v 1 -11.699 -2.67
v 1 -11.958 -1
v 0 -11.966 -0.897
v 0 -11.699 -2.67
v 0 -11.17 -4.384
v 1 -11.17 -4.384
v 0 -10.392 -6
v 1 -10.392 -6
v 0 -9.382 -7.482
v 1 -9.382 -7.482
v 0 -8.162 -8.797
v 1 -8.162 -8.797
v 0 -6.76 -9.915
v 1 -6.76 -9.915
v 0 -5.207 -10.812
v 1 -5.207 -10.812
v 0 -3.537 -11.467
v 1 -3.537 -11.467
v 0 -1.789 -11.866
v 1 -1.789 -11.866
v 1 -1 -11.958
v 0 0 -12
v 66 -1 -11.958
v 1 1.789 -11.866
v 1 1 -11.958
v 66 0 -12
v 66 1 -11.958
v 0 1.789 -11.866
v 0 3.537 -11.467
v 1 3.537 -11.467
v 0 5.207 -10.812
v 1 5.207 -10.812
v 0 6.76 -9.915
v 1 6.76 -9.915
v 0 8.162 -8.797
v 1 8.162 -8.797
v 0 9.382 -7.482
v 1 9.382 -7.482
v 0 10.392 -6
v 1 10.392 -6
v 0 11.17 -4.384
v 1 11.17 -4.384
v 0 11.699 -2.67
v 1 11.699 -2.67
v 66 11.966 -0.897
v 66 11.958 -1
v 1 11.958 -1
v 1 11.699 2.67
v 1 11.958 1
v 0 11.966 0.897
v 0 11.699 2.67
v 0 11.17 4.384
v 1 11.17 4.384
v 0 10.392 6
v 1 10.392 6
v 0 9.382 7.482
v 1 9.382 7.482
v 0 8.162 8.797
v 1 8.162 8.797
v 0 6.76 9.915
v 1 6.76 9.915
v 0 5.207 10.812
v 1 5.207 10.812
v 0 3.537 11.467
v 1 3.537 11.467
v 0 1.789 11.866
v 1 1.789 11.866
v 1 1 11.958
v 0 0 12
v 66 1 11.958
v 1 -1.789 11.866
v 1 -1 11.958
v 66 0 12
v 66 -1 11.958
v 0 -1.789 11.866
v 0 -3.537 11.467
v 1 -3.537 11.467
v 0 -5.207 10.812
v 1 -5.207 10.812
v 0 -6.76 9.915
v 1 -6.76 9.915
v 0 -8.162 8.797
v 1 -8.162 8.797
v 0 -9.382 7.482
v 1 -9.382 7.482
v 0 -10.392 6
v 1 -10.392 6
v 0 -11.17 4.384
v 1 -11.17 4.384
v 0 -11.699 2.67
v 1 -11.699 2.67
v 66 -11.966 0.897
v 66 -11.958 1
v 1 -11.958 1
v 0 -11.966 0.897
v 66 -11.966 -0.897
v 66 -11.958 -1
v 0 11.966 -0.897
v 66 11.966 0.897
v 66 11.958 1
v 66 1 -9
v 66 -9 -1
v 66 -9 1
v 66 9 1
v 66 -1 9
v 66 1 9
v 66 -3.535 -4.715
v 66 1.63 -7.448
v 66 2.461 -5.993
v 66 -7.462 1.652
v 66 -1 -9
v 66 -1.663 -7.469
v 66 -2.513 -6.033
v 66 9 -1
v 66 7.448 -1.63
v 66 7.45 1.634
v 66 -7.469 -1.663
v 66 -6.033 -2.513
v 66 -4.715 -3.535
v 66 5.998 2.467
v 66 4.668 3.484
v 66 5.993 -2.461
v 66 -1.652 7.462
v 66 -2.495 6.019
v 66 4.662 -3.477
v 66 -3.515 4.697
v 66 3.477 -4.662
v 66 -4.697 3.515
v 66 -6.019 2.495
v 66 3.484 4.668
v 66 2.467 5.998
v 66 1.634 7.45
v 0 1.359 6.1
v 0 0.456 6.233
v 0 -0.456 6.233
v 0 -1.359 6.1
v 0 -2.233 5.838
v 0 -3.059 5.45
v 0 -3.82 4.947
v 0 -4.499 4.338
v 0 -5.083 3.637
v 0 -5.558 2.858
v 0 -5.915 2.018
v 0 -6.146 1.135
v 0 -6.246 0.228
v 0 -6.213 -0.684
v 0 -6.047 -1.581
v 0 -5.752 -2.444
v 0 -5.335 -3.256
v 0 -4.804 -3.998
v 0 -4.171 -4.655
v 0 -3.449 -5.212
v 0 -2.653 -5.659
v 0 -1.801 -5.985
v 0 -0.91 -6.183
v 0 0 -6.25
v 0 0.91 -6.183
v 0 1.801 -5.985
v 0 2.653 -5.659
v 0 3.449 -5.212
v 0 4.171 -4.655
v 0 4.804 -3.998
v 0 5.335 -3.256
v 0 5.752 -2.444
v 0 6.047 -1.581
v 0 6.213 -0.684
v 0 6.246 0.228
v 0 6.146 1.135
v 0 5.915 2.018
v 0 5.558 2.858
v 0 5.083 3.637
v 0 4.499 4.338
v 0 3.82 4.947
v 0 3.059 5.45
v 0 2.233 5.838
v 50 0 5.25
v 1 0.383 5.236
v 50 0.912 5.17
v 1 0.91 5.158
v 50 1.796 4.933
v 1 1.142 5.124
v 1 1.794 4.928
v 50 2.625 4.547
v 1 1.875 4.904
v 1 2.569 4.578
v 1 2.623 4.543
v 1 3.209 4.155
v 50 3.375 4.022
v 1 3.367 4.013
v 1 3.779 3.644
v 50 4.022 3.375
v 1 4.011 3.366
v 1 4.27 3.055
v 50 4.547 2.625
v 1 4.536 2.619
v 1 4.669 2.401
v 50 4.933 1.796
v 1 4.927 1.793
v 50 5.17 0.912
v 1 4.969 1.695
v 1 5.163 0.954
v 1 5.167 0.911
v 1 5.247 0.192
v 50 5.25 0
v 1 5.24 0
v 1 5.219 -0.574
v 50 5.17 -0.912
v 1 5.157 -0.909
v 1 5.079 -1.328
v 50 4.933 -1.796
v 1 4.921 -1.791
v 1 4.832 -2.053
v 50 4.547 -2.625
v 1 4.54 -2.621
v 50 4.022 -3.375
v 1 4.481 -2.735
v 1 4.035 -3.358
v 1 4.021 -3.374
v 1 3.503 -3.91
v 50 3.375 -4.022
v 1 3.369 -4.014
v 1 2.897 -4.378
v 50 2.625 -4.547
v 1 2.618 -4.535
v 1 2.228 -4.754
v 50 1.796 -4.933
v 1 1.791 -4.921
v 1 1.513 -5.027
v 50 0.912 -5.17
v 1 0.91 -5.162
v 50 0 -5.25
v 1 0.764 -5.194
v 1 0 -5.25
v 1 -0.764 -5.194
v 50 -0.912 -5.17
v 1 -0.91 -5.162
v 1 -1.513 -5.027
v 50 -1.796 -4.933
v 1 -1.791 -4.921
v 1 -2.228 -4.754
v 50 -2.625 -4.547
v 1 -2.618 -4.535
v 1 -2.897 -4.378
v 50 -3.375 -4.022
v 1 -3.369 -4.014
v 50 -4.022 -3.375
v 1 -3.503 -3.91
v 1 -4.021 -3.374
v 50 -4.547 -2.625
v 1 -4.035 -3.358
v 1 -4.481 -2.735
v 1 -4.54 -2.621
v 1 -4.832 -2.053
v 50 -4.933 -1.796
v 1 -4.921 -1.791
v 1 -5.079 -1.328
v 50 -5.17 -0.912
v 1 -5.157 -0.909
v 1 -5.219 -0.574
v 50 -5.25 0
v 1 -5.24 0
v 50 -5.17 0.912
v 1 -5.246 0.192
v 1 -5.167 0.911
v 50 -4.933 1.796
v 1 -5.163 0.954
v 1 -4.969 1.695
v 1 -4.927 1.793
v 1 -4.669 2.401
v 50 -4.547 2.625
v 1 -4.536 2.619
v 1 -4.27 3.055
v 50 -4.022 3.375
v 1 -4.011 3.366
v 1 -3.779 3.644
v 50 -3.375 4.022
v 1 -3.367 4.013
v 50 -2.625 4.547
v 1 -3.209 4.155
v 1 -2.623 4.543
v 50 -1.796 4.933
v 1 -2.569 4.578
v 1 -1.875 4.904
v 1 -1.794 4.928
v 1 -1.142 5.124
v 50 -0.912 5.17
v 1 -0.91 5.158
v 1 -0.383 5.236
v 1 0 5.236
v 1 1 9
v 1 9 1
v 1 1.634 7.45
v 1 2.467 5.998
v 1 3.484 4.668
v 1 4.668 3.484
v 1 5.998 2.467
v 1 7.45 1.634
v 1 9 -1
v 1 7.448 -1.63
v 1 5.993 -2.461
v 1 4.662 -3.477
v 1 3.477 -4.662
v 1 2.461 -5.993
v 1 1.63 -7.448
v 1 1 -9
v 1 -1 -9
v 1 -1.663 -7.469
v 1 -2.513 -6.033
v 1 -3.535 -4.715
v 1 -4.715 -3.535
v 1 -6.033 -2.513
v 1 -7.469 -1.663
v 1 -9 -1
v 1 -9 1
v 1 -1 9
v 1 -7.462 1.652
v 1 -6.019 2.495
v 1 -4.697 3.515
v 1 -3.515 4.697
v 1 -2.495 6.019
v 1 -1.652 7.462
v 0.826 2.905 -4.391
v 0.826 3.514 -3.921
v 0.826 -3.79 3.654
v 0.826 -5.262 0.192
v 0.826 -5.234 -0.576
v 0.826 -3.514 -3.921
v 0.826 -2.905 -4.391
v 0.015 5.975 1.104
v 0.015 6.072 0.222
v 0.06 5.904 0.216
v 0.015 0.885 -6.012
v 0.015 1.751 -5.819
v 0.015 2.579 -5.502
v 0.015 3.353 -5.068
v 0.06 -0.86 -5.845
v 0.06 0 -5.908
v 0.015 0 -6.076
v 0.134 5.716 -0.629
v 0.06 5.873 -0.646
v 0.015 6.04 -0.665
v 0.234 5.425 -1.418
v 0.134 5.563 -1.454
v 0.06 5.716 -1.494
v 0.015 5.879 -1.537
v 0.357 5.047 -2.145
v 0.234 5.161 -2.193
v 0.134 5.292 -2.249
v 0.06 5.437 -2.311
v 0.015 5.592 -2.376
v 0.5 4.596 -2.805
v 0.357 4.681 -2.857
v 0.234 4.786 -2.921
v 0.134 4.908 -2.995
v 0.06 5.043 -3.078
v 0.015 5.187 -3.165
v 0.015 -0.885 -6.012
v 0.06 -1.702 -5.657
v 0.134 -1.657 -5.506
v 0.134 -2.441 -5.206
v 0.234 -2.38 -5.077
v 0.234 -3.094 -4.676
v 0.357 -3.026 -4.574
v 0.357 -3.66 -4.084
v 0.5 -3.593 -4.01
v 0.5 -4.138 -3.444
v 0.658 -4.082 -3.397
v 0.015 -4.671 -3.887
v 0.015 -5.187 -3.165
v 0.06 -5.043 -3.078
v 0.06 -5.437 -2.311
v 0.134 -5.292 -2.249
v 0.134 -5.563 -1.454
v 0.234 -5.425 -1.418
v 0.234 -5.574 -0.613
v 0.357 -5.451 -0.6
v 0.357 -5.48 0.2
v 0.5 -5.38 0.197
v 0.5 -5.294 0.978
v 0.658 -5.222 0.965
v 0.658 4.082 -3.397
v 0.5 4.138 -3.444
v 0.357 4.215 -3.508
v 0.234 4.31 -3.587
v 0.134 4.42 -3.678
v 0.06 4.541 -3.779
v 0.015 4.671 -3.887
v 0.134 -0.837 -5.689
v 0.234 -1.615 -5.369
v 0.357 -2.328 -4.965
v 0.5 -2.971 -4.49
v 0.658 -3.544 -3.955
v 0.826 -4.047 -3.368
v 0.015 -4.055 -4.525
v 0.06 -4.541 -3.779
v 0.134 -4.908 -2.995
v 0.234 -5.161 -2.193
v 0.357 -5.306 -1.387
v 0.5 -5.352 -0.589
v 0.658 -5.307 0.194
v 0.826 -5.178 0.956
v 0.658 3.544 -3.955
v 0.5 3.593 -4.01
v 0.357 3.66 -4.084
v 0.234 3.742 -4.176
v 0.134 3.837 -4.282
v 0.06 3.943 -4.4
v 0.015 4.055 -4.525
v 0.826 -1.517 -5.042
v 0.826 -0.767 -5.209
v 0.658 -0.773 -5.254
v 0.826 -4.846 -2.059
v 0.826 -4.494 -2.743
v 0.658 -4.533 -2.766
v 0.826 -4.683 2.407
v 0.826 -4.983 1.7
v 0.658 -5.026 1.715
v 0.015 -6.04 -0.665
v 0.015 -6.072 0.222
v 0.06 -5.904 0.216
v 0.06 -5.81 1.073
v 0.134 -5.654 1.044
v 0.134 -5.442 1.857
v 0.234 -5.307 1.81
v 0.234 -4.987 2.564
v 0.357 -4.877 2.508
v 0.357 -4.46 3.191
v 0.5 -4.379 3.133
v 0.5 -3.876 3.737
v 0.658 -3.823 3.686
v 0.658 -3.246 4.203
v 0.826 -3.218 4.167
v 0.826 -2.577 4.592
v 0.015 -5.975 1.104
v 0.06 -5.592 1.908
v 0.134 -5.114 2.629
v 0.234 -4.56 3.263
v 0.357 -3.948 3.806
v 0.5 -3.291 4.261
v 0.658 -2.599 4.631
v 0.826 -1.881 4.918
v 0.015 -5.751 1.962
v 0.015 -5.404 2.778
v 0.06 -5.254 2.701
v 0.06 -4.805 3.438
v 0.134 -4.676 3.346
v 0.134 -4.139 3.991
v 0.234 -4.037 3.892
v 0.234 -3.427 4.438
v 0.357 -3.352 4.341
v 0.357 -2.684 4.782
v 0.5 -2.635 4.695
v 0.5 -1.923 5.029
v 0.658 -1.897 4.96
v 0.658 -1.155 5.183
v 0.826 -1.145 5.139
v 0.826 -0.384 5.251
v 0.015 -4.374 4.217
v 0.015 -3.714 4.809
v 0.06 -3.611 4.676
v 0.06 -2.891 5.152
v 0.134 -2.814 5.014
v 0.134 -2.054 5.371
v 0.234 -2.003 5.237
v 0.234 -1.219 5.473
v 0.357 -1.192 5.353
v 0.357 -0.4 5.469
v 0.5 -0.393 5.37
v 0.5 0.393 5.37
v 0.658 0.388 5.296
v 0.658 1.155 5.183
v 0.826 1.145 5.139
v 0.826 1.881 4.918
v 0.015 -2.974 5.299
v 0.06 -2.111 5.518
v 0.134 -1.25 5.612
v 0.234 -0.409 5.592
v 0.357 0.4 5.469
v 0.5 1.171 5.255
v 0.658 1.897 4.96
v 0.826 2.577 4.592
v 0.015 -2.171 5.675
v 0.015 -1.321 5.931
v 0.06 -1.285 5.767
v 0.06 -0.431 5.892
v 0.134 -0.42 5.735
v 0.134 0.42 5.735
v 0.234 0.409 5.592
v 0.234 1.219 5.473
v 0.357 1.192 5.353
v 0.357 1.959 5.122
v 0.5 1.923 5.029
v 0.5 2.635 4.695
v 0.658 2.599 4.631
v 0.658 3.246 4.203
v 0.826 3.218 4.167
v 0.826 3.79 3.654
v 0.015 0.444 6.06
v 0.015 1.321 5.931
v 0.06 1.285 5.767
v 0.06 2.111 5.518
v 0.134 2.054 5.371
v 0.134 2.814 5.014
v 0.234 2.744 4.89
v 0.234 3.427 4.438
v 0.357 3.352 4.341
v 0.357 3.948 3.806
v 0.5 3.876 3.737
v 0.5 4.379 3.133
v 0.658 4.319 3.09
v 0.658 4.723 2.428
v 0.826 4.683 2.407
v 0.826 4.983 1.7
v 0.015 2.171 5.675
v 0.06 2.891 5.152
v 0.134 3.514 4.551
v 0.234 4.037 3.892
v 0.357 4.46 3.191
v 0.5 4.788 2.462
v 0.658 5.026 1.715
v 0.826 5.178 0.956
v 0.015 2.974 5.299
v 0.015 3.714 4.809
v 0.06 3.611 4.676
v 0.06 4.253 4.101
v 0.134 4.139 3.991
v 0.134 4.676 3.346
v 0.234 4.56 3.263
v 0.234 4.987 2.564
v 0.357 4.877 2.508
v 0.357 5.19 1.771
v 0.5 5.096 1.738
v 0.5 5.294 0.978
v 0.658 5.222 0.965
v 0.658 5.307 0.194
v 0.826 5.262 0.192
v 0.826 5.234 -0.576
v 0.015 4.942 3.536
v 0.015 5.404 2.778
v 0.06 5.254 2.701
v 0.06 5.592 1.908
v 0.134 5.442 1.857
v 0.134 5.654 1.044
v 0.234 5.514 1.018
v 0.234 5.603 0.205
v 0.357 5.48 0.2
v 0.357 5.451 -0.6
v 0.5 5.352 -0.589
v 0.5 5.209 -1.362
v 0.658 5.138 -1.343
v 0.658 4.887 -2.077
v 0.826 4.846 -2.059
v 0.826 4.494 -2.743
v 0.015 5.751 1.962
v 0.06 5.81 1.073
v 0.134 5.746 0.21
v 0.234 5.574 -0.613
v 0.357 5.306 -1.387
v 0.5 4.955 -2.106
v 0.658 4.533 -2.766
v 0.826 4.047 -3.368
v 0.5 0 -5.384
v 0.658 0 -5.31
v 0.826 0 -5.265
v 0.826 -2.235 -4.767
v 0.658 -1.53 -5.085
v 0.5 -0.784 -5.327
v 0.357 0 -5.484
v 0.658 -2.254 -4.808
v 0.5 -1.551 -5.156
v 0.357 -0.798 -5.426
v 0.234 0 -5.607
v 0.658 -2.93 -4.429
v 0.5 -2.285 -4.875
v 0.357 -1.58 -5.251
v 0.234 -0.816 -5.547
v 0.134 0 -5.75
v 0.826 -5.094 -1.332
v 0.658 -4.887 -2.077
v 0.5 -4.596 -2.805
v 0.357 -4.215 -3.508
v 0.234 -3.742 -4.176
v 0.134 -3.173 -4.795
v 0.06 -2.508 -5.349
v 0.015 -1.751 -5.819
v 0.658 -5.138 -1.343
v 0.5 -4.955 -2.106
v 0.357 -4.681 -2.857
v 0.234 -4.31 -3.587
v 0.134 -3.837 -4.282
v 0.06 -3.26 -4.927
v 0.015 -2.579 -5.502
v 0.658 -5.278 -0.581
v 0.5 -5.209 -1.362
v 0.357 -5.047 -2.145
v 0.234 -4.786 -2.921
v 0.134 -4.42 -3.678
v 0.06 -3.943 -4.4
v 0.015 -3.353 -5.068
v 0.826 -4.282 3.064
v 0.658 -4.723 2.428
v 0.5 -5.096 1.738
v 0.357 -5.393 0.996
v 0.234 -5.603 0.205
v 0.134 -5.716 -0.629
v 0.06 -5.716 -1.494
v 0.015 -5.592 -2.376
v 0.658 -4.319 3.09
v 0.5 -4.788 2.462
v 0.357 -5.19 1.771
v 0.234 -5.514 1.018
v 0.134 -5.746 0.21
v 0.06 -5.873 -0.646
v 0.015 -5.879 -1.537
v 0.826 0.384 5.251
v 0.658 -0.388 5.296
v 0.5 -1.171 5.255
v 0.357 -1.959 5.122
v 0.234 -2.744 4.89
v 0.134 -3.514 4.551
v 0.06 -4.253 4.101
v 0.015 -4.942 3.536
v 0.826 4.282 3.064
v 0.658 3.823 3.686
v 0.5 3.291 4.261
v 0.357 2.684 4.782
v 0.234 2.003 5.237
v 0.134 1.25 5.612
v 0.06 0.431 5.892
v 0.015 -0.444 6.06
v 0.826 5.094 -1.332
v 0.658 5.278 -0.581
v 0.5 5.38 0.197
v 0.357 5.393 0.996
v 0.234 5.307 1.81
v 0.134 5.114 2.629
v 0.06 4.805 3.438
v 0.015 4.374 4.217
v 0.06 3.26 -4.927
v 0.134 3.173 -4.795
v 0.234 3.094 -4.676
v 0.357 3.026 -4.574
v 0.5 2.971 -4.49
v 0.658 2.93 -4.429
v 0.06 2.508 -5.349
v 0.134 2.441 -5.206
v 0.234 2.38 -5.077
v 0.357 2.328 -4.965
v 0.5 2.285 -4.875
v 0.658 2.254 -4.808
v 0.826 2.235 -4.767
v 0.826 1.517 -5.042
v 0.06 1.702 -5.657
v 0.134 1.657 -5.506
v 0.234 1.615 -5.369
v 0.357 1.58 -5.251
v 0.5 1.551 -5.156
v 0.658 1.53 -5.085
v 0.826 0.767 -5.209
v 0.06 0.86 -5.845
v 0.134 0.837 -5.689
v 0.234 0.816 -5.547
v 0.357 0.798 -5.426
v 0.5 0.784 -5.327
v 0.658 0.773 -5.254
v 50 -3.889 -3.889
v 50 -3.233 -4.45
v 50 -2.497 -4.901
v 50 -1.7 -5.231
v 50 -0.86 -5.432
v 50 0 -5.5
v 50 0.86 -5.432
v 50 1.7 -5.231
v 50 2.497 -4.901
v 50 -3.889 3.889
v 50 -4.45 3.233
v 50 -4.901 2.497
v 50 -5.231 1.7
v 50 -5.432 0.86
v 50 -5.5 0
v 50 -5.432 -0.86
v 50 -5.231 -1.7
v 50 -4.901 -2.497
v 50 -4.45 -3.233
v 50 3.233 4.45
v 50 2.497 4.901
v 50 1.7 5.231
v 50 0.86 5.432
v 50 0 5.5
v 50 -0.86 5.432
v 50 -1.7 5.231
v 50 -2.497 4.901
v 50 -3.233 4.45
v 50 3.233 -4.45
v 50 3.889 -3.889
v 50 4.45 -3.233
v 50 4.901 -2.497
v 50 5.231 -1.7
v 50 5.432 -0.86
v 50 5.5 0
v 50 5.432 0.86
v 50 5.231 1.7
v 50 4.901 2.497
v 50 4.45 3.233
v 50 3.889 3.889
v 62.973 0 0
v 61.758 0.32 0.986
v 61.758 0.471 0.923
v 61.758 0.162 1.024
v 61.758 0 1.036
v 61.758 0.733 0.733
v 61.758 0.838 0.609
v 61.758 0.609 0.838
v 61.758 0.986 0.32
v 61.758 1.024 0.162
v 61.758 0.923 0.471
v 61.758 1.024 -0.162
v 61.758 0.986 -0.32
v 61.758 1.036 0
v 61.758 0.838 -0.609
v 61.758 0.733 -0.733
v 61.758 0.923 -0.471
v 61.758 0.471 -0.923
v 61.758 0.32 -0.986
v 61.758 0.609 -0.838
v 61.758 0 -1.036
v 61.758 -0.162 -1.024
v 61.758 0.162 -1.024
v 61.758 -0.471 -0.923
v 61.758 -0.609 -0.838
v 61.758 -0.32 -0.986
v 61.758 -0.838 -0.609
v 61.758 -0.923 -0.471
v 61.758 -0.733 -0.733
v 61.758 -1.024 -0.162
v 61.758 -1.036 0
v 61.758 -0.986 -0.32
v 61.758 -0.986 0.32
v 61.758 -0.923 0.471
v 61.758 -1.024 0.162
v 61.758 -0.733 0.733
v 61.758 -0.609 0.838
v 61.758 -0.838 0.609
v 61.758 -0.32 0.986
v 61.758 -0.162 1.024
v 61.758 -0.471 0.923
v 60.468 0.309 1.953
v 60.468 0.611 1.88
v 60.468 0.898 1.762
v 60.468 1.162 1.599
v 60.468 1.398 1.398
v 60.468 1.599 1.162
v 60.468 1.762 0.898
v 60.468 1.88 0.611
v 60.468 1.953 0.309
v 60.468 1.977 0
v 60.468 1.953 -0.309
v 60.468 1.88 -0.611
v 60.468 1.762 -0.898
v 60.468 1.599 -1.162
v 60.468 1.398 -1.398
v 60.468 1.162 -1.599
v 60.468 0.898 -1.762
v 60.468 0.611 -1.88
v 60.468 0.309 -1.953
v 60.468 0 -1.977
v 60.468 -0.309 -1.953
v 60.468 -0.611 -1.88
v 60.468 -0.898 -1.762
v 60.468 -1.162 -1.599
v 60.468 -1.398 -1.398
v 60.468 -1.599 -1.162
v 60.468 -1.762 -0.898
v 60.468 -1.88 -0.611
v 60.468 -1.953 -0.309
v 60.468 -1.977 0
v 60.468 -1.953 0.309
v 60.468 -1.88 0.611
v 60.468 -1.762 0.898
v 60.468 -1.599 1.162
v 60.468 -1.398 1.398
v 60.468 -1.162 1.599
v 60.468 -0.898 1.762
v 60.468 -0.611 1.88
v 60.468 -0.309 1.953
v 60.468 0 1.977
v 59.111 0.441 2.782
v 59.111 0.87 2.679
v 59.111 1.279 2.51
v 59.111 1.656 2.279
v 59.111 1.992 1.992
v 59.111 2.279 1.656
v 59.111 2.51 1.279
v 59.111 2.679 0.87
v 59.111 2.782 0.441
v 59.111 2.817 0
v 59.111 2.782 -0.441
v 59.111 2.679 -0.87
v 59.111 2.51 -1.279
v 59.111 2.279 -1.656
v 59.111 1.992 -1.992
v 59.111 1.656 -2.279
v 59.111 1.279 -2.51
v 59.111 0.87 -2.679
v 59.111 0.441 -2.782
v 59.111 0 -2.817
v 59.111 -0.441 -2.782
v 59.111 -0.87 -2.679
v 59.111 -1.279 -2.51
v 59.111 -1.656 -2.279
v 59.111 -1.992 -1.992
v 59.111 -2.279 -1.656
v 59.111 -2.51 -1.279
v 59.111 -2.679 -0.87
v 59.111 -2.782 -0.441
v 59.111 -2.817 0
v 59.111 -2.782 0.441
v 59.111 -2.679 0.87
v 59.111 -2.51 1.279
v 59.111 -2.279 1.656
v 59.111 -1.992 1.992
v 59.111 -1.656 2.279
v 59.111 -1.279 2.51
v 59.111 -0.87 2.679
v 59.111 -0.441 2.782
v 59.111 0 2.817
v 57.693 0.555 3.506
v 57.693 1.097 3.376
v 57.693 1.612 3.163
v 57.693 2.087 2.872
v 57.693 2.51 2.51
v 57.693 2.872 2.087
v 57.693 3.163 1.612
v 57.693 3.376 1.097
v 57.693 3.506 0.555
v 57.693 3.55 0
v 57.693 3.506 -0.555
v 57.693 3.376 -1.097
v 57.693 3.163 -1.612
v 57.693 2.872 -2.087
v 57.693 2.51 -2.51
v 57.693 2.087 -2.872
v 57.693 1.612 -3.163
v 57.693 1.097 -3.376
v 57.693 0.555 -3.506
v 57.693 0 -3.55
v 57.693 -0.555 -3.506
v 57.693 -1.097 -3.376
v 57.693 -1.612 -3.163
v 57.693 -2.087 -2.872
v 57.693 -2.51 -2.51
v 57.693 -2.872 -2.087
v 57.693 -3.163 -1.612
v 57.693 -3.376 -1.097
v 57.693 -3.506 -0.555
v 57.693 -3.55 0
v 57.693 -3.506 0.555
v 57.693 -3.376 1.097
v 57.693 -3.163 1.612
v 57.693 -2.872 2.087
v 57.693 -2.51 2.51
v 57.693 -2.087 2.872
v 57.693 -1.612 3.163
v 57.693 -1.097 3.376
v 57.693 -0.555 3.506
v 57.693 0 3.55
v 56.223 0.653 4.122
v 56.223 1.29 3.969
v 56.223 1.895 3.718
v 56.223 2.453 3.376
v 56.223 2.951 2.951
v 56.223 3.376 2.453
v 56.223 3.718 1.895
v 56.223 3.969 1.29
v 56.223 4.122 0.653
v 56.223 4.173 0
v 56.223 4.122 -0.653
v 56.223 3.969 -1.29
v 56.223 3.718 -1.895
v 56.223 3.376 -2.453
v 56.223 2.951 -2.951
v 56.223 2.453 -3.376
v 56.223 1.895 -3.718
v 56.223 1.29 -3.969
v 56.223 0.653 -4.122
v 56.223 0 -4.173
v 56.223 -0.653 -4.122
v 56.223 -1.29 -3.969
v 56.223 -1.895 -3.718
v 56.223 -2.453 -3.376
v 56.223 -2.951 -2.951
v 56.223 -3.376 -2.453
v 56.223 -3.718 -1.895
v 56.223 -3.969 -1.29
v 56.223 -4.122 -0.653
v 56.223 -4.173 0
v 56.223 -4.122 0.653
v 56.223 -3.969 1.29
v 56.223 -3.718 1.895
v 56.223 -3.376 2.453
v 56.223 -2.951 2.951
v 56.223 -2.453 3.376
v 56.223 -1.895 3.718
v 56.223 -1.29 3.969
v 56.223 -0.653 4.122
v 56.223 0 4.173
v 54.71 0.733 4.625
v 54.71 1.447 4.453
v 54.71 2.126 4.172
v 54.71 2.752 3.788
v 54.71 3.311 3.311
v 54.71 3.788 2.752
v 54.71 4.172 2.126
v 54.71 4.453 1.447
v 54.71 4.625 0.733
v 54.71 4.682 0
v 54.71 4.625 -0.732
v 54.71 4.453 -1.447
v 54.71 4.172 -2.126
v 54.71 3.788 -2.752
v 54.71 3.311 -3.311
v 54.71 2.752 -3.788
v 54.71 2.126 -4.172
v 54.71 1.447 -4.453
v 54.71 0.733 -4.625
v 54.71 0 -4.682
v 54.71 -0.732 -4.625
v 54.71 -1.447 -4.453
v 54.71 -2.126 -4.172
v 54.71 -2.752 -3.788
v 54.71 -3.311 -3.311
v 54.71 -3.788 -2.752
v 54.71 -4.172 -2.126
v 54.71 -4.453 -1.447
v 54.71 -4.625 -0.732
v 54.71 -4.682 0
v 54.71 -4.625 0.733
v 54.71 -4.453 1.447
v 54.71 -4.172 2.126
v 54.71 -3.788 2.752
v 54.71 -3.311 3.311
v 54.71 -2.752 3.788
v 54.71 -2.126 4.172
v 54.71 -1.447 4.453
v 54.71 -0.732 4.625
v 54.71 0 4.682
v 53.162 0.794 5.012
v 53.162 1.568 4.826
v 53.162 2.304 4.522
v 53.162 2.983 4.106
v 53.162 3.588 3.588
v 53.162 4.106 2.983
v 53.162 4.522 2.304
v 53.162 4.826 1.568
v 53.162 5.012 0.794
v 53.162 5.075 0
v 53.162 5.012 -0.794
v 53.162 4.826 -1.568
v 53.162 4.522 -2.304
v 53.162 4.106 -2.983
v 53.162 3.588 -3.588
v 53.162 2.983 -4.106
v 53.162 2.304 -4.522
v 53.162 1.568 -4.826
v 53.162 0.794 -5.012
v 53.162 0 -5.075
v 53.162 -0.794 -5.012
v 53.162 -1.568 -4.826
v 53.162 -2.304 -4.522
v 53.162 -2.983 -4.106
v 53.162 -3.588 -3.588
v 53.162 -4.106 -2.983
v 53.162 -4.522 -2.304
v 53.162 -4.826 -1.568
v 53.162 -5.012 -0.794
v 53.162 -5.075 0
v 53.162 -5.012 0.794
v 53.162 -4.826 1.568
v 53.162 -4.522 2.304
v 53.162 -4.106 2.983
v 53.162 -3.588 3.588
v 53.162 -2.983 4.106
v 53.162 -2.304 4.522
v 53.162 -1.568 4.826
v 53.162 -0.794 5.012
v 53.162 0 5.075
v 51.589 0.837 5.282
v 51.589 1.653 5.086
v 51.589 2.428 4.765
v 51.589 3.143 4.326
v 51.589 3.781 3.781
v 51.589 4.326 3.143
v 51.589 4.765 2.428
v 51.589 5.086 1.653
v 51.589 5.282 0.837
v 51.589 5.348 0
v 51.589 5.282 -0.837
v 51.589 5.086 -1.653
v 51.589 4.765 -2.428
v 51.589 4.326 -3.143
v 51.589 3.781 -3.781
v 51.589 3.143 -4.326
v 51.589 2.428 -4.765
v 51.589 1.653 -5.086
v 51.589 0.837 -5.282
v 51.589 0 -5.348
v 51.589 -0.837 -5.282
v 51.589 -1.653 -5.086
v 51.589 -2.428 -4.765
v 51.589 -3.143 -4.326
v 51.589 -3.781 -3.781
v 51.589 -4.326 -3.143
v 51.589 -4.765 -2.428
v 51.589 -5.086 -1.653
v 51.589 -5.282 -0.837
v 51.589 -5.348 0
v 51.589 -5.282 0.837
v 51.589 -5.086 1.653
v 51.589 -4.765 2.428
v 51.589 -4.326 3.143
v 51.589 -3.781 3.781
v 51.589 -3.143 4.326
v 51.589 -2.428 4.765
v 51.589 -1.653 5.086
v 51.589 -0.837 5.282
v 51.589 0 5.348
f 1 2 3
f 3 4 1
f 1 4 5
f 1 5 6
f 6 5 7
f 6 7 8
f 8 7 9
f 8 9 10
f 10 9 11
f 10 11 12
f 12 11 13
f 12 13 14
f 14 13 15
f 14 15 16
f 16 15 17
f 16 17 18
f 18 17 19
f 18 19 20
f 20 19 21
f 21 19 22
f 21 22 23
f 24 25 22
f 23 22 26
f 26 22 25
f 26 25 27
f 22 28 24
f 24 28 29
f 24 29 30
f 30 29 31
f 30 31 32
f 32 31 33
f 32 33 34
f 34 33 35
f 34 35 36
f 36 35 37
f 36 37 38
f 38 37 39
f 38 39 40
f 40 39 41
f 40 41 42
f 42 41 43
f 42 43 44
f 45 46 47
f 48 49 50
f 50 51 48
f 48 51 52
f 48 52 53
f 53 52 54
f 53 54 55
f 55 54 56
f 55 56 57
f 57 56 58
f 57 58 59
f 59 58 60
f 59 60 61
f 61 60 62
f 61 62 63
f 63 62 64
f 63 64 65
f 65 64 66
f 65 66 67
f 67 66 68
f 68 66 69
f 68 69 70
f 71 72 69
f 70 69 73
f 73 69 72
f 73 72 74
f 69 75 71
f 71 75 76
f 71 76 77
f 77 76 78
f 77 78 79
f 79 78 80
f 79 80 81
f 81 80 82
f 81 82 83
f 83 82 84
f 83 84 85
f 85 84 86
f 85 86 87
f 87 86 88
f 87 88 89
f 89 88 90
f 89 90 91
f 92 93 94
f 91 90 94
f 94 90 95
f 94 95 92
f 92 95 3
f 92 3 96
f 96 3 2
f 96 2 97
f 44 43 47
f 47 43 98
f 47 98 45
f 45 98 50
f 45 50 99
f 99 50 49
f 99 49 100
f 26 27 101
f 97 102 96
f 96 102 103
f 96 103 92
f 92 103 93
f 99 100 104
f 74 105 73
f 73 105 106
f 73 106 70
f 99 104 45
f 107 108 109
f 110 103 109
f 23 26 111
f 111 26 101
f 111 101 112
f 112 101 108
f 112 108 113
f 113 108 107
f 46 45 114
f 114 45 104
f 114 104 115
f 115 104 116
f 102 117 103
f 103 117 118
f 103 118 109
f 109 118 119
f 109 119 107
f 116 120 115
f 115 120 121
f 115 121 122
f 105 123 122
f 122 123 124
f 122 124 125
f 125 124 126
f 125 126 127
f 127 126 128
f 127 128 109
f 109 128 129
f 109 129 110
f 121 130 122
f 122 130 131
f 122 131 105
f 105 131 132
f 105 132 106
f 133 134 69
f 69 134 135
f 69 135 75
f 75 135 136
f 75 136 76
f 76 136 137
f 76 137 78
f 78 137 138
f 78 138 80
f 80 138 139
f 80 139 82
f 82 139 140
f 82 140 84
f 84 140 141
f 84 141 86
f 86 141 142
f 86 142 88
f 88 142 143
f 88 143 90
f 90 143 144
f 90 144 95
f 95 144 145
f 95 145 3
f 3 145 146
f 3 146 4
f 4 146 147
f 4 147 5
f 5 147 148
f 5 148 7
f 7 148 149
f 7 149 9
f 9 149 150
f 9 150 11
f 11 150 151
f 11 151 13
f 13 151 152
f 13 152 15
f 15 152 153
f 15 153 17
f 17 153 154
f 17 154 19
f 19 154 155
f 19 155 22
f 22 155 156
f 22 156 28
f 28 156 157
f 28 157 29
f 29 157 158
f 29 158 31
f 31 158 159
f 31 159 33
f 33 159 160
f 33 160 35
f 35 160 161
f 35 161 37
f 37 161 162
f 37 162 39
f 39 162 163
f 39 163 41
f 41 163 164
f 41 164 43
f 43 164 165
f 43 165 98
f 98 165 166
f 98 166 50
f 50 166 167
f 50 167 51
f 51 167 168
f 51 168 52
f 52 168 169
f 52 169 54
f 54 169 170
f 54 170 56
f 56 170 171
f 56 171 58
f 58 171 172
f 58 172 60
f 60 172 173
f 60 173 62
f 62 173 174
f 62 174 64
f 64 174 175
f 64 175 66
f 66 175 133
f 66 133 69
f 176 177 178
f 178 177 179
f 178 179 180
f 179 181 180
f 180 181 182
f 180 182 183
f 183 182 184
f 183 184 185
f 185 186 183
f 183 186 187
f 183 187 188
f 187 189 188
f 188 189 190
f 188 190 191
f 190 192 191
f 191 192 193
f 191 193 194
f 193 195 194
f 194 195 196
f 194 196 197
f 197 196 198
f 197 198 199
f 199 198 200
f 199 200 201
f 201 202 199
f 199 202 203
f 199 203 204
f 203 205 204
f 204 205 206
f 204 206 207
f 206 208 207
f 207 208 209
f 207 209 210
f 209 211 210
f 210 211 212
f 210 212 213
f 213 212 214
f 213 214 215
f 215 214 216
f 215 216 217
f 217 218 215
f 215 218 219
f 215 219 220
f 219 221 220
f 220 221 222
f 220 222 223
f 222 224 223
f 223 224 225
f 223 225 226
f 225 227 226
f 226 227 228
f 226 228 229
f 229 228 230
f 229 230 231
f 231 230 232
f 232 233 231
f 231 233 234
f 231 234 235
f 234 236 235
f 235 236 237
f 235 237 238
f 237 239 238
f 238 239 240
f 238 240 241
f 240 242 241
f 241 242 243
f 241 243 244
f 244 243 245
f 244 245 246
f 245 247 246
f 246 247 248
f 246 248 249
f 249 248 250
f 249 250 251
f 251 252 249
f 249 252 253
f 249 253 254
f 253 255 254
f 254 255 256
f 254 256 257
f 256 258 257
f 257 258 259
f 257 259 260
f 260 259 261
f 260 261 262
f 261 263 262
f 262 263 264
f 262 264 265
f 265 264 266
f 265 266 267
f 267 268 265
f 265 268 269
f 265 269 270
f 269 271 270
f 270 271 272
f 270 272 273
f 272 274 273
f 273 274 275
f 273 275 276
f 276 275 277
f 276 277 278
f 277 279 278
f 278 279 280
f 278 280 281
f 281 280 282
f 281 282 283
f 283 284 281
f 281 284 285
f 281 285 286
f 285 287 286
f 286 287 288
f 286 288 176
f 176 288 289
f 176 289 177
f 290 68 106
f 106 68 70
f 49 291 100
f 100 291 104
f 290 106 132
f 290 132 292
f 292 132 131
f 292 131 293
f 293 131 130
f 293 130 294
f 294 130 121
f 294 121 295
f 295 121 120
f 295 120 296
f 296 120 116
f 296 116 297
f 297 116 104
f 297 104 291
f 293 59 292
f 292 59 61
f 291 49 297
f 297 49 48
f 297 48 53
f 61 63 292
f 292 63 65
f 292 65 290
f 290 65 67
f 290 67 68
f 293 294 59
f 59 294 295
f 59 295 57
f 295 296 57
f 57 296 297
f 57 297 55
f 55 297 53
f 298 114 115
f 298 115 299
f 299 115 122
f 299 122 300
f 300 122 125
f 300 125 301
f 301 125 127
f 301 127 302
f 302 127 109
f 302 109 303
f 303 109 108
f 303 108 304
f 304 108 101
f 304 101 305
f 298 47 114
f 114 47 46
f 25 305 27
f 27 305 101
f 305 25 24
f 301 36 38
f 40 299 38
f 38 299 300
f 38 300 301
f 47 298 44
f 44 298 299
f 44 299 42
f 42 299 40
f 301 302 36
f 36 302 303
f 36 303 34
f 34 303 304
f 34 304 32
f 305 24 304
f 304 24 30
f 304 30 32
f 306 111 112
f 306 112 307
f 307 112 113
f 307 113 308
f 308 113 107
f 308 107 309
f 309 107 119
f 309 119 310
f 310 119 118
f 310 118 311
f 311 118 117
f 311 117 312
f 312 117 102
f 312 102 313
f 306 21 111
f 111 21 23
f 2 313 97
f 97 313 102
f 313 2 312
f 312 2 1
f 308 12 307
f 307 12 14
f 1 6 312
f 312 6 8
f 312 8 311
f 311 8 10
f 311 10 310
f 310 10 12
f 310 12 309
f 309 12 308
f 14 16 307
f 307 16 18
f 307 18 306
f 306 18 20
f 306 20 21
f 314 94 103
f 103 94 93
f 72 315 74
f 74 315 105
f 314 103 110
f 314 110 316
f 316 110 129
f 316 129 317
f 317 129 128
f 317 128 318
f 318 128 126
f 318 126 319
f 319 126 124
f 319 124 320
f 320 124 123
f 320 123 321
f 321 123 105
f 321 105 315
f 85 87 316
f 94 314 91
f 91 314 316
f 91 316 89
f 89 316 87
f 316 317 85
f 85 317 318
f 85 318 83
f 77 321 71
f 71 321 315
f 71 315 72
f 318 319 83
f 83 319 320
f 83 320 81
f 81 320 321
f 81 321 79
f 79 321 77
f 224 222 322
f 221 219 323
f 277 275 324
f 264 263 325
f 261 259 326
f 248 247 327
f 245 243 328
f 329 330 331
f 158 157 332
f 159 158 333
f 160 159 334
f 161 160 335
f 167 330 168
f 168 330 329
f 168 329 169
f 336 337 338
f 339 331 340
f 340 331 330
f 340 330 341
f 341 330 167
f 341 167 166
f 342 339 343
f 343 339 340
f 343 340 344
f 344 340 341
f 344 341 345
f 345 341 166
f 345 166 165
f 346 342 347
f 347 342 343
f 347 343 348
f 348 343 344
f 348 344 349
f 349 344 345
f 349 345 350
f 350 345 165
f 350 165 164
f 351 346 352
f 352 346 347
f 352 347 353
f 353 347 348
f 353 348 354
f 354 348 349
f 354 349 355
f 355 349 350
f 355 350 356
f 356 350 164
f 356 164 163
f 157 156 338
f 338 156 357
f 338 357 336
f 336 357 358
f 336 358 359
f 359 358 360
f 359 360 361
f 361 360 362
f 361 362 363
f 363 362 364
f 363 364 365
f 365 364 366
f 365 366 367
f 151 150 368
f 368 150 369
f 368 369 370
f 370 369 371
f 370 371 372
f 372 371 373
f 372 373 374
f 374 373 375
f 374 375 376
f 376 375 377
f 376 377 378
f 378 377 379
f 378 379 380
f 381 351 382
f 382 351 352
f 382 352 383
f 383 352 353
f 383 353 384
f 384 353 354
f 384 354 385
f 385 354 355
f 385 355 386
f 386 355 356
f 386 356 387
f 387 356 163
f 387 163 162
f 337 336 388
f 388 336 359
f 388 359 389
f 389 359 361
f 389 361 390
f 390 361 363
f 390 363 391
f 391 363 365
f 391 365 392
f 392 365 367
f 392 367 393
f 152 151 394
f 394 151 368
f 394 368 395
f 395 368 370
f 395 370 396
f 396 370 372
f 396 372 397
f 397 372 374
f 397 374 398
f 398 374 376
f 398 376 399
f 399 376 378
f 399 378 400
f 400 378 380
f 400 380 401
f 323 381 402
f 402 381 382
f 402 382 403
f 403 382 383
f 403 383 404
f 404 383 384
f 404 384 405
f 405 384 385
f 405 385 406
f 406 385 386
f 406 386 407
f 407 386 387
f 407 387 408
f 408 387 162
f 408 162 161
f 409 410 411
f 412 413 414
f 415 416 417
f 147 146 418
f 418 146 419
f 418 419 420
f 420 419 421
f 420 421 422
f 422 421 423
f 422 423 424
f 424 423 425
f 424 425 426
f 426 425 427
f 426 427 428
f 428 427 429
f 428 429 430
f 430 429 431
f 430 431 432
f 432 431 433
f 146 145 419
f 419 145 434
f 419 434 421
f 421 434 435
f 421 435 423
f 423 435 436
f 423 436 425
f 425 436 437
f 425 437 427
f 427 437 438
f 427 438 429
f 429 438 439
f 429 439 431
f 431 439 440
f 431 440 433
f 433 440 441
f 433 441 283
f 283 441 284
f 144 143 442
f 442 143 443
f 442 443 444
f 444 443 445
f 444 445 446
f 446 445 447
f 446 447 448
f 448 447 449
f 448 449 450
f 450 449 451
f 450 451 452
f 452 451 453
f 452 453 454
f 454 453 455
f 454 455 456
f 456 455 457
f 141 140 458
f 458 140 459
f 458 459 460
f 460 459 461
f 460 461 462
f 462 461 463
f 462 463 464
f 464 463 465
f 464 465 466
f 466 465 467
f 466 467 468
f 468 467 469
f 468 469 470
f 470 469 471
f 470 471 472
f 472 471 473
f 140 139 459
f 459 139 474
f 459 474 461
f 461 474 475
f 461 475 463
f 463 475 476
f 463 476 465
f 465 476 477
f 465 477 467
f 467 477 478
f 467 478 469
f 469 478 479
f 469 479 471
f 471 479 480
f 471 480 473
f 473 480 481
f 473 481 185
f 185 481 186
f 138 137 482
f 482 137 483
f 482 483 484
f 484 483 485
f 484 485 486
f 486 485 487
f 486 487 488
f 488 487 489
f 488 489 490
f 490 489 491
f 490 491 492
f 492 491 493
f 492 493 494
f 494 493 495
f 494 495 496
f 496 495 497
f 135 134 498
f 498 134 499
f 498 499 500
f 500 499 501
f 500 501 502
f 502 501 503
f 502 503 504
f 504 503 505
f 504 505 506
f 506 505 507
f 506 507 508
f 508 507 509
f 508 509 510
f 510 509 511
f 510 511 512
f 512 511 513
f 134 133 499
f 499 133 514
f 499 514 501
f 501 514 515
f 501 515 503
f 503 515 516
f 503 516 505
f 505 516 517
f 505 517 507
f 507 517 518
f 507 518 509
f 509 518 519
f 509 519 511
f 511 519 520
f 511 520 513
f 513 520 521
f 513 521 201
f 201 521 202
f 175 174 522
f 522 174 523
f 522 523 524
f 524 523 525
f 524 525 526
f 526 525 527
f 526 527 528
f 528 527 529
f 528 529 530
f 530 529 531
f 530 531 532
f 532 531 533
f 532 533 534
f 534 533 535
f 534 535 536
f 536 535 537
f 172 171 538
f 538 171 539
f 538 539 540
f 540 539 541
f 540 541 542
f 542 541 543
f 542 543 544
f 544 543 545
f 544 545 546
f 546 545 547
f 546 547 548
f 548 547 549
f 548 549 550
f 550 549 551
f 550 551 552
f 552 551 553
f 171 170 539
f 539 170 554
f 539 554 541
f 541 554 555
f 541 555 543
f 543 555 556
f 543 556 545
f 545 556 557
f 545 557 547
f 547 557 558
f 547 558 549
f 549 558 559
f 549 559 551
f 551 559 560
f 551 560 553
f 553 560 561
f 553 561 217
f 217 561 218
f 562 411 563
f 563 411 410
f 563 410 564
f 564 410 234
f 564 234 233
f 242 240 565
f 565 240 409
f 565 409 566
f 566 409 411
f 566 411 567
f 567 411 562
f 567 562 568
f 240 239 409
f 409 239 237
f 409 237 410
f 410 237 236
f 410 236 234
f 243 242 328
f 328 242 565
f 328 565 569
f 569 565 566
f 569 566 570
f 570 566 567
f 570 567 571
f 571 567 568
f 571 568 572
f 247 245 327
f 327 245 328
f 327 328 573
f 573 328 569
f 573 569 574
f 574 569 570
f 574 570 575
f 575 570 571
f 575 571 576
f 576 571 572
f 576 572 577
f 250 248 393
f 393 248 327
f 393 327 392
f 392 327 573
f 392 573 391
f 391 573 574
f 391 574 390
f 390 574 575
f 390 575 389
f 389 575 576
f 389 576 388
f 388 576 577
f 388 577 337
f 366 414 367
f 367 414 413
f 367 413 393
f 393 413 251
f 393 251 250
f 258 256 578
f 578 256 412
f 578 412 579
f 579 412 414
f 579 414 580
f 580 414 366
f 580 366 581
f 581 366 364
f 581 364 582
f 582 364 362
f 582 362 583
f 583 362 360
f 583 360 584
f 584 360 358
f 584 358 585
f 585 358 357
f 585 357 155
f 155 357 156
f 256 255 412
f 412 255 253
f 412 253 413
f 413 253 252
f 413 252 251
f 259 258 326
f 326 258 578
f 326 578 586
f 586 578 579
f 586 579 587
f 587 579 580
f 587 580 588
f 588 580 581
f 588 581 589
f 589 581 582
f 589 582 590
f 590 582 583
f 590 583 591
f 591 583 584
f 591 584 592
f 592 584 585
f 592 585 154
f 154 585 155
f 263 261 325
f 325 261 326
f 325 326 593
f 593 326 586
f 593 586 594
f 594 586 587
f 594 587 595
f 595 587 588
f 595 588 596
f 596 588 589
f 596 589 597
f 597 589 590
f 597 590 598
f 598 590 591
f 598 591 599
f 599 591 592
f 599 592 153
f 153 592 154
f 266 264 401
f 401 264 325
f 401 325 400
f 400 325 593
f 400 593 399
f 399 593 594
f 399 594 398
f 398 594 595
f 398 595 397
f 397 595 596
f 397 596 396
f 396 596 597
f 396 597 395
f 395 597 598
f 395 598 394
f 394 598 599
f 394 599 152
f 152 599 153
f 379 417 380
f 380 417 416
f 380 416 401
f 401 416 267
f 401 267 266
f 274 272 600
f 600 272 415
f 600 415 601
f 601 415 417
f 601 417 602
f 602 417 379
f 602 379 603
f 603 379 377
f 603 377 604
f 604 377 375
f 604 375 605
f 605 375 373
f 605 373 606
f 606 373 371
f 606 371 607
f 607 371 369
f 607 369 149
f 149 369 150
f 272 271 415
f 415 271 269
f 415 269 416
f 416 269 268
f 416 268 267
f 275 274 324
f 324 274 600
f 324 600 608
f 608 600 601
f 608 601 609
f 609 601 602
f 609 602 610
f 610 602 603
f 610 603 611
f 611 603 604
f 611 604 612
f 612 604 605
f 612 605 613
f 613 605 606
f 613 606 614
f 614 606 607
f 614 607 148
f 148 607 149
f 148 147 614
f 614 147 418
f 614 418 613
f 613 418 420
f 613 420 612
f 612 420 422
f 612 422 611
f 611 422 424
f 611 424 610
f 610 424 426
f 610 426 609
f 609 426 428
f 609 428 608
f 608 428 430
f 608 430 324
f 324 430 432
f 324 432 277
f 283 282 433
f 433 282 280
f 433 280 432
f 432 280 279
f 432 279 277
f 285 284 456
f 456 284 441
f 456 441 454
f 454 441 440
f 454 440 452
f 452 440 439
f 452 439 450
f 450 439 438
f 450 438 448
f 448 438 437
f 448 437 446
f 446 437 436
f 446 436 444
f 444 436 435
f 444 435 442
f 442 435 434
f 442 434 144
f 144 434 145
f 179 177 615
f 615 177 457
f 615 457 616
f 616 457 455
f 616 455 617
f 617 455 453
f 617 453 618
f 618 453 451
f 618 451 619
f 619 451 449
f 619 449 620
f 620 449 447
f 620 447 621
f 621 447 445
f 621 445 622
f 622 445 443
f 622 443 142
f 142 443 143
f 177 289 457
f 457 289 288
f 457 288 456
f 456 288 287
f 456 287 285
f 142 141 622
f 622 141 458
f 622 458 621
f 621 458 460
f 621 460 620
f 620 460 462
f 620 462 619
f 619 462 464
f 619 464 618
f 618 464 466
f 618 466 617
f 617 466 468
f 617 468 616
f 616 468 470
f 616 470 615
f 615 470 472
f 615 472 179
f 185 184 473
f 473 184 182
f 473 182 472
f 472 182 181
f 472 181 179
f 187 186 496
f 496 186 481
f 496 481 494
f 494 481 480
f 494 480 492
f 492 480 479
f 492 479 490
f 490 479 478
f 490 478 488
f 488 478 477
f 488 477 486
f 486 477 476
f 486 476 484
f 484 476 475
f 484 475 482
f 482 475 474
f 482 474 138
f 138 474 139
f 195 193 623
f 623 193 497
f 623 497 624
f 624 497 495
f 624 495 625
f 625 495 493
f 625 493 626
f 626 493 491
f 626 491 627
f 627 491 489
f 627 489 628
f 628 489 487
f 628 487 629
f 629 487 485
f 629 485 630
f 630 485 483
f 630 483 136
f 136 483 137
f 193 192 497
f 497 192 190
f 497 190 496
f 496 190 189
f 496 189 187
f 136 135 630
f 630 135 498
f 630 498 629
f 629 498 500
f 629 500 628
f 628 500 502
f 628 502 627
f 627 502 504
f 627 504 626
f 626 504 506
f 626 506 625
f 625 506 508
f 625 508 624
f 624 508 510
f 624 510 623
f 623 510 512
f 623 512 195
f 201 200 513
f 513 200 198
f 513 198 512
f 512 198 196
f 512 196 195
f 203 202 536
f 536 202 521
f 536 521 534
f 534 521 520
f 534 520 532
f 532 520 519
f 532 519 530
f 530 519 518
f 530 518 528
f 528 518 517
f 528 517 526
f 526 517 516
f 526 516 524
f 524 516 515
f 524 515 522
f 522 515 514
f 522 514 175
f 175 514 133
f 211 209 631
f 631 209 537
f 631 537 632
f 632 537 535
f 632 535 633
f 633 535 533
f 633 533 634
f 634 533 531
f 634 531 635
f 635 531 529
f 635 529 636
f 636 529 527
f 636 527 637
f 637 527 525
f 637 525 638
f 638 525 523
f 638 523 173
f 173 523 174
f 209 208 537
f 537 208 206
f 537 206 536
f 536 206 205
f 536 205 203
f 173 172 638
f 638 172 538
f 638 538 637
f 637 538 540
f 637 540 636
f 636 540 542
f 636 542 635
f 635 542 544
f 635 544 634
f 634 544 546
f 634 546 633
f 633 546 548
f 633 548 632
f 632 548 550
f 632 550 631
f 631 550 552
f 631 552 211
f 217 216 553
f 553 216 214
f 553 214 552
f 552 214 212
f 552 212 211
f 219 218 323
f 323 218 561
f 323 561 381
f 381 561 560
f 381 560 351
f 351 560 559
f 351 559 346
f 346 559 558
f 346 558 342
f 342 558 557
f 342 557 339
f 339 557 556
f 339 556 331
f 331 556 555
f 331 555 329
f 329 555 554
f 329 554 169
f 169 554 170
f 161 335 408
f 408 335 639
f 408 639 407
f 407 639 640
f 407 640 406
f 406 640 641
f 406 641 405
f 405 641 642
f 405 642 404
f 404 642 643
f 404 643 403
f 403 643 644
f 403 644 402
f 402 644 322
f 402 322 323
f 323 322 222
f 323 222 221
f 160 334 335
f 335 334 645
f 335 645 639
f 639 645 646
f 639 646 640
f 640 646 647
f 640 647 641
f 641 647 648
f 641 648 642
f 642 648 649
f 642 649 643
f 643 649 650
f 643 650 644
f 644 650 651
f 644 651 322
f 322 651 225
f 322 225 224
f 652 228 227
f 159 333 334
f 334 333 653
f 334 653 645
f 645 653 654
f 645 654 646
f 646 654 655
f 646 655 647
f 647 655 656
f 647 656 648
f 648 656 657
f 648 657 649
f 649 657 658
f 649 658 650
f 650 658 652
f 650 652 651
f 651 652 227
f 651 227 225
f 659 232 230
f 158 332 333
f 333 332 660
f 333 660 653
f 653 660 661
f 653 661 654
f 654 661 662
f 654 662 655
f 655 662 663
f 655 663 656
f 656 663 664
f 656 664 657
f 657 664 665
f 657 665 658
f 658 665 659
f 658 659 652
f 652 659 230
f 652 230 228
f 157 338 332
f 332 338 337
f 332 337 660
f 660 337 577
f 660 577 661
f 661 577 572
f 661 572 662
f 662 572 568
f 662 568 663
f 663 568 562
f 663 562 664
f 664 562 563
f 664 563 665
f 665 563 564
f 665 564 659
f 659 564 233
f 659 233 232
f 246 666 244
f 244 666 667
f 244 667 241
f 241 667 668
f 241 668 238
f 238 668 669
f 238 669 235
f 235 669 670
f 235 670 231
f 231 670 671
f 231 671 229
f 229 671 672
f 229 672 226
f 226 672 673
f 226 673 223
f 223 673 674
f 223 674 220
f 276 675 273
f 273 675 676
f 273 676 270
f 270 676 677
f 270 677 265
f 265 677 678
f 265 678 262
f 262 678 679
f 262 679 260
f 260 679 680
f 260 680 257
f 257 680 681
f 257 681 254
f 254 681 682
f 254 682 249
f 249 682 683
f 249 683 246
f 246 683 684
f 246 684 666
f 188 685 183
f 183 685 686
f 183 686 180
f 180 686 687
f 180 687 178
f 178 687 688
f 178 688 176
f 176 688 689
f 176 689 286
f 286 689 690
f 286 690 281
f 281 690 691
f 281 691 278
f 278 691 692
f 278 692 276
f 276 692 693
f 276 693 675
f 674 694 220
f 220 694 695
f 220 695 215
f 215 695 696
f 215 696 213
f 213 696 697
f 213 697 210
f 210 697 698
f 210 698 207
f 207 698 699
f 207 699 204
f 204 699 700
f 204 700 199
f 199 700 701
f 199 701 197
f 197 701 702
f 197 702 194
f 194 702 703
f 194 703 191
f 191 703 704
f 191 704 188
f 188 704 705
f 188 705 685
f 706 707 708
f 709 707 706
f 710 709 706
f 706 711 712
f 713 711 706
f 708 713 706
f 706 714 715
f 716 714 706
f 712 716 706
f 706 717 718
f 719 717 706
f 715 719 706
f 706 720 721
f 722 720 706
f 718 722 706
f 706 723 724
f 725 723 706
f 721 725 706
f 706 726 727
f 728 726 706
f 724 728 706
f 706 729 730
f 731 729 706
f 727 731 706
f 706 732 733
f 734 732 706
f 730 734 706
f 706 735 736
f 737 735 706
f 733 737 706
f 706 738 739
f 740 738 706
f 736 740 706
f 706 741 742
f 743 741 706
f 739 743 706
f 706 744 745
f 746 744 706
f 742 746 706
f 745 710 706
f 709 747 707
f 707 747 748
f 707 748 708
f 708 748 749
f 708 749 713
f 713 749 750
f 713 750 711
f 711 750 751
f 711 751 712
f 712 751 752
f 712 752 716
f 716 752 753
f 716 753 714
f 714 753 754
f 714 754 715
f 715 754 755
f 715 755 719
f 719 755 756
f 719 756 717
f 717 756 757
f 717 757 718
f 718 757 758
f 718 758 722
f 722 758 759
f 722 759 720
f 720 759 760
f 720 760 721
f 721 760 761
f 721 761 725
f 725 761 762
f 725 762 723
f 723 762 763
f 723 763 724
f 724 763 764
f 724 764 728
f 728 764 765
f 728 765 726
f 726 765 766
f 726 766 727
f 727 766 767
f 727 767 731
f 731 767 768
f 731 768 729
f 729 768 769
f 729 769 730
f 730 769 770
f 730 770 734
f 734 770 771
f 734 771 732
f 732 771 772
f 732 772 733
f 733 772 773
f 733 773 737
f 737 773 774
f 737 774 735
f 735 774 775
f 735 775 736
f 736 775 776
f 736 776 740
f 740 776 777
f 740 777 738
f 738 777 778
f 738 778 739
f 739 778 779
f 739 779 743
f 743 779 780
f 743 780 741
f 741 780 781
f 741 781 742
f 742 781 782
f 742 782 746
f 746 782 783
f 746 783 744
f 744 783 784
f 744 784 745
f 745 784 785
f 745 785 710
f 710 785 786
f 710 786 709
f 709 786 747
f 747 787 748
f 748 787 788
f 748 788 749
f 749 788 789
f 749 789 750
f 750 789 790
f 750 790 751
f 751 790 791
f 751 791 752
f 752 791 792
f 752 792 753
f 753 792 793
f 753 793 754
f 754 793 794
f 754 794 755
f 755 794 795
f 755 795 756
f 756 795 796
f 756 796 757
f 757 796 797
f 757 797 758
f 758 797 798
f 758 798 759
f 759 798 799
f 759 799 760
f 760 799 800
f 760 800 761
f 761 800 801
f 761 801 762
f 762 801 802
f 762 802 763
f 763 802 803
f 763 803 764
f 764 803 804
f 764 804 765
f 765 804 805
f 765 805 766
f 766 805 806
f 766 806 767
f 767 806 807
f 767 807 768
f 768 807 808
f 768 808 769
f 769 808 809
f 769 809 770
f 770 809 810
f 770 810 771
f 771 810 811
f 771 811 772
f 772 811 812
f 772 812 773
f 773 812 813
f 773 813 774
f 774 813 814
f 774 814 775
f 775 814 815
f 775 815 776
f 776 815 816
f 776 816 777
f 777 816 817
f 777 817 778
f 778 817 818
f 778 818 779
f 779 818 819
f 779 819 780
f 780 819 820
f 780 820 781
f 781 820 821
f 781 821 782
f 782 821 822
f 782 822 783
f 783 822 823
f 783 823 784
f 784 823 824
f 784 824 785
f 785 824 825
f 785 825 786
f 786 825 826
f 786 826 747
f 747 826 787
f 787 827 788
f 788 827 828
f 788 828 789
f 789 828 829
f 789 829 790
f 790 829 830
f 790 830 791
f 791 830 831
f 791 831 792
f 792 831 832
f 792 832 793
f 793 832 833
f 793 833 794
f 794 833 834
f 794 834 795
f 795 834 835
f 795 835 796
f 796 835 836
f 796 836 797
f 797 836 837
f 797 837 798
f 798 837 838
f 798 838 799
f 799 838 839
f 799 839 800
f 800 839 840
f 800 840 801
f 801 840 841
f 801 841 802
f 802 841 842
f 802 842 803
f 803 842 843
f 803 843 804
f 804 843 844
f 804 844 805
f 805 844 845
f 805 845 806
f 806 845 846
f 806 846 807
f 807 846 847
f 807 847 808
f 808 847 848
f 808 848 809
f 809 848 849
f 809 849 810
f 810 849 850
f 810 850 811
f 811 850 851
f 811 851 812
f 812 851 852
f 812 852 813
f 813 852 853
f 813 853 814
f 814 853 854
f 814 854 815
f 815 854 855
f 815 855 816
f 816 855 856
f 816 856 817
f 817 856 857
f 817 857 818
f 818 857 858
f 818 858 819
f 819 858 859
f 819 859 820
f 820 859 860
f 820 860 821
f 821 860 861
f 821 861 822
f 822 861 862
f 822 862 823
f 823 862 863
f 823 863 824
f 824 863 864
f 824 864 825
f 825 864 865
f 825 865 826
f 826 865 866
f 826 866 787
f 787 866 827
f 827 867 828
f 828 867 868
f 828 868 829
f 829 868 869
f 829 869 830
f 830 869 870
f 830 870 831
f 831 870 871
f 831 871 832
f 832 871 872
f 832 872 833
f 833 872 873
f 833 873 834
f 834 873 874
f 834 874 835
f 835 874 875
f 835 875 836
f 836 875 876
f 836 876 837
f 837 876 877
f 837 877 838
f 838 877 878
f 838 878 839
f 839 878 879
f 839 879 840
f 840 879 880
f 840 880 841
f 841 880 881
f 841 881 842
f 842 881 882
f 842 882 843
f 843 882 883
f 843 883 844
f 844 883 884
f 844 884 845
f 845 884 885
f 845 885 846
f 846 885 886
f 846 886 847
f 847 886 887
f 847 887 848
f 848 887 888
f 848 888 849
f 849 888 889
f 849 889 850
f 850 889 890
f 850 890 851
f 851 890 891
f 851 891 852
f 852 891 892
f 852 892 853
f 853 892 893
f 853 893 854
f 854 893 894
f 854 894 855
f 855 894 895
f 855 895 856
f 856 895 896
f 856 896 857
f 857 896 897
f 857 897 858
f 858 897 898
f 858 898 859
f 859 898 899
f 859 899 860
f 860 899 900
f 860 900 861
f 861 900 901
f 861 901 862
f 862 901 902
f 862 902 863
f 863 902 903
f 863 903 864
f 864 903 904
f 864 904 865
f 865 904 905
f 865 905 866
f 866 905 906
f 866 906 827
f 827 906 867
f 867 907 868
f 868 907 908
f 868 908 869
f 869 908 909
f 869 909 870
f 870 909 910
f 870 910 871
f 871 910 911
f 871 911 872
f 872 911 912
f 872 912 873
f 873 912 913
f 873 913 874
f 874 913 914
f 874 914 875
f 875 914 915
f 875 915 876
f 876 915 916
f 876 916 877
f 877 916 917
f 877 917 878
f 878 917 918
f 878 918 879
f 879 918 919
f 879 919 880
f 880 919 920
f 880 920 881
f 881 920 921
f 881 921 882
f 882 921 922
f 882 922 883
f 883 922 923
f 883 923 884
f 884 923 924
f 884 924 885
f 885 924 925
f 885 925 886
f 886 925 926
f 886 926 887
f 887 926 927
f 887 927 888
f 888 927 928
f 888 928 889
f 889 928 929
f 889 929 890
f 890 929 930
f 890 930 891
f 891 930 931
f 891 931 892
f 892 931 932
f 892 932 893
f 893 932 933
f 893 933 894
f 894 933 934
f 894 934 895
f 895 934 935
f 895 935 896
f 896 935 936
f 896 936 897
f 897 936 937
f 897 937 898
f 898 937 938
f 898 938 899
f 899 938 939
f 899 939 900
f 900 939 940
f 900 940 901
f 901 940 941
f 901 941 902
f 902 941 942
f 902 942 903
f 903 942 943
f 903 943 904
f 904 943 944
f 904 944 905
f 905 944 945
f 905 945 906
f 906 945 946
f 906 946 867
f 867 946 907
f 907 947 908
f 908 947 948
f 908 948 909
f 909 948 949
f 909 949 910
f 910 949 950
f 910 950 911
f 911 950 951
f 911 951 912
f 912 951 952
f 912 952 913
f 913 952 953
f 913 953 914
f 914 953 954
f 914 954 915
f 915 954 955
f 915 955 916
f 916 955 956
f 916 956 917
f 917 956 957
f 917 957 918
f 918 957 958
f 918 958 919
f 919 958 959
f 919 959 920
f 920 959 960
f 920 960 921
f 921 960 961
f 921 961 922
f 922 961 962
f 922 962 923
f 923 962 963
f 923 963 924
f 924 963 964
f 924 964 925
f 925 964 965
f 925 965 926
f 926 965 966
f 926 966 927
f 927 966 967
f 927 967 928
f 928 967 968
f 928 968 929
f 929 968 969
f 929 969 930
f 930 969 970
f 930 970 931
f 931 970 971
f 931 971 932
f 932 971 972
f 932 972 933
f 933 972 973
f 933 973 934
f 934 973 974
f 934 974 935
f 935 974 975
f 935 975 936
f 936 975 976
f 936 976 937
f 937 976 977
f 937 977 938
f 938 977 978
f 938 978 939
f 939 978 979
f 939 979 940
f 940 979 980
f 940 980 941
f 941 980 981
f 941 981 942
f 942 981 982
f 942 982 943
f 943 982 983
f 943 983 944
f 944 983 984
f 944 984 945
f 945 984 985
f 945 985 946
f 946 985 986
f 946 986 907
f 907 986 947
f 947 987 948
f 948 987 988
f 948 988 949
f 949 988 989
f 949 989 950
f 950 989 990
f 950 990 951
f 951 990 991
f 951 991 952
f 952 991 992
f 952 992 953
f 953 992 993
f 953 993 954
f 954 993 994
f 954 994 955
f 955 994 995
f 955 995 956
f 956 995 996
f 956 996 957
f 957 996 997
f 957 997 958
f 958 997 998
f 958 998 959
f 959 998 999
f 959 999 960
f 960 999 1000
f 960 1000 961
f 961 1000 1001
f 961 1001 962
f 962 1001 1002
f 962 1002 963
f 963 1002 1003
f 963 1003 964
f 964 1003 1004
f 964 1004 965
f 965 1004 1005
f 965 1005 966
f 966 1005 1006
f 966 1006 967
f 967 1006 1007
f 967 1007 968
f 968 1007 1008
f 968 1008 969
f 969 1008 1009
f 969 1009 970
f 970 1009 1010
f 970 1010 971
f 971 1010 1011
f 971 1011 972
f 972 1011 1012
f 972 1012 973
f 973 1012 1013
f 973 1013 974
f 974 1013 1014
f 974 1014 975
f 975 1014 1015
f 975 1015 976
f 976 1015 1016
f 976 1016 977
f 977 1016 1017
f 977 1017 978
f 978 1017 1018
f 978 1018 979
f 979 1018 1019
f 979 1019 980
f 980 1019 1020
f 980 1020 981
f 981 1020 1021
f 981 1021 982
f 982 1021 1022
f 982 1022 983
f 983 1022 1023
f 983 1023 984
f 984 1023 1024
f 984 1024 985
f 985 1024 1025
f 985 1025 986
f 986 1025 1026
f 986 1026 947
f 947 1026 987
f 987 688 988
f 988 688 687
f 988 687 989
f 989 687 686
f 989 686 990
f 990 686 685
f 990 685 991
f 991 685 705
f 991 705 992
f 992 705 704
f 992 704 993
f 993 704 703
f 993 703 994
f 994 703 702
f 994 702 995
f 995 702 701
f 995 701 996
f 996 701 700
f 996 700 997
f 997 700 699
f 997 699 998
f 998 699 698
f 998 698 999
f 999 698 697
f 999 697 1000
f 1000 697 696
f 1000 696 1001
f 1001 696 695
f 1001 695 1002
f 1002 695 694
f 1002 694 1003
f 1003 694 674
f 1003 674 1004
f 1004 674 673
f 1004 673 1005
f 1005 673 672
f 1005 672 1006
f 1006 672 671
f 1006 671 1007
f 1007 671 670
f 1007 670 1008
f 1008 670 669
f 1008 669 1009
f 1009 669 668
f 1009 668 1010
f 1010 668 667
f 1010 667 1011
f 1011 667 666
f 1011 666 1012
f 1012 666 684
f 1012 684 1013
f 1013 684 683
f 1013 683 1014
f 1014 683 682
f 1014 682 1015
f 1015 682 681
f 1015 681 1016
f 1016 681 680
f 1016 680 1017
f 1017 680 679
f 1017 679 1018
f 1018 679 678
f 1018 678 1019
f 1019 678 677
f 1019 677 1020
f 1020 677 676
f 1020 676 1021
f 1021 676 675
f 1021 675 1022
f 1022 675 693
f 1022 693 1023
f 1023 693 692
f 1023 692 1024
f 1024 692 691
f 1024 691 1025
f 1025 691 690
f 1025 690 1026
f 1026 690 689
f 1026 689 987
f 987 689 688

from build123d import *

# Parameters (mm, degrees)
CROQUIS1_R              = 12
SALIENTE_EXTRUIR1_DEPTH = 66
CROQUIS2_R              = 5.25
CORTAR_EXTRUIR1_DEPTH   = 50
CORTAR_EXTRUIR3_DEPTH   = 65
REDONDEO1_R             = 1


with BuildPart() as part:
    # Croquis1 → Saliente-Extruir1 (new body)
    with BuildSketch(Plane(origin=(0, 0, 0), x_dir=(0, 0, -1), z_dir=(1, 0, 0))):
        Circle(CROQUIS1_R)
    extrude(amount=SALIENTE_EXTRUIR1_DEPTH)

    # Croquis2 → Cortar-Extruir1 (cut)
    with BuildSketch(Plane.ZY):
        Circle(CROQUIS2_R)
    extrude(amount=-CORTAR_EXTRUIR1_DEPTH, mode=Mode.SUBTRACT)

    # Croquis3 → Cortar-Extruir3 (cut)
    with BuildSketch(Plane(origin=(66, 0, 0), x_dir=(0, 0, -1), z_dir=(1, 0, 0))):
        with BuildLine():
            ThreePointArc((-1, 11.958260743), (-8.485281374, 8.485281374), (-11.958260743, 1))
            Line((-11.958260743, 1), (-9, 1))
            ThreePointArc((-9, 1), (-4.056739766, 4.056739766), (-1, 9))
            Line((-1, 9), (-1, 11.958260743))
        make_face()
        with BuildLine():
            Line((9, 1), (11.958260743, 1))
            ThreePointArc((11.958260743, 1), (8.485281374, 8.485281374), (1, 11.958260743))
            Line((1, 11.958260743), (1, 9))
            ThreePointArc((1, 9), (4.049951004, 4.049951004), (9, 1))
        make_face()
        with BuildLine():
            ThreePointArc((9, -1), (4.106809031, -4.106809031), (1, -9))
            Line((1, -9), (1, -11.958260743))
            ThreePointArc((1, -11.958260743), (8.485281374, -8.485281374), (11.958260743, -1))
            Line((11.958260743, -1), (9, -1))
        make_face()
        with BuildLine():
            ThreePointArc((-11.958260743, -1), (-8.485281374, -8.485281374), (-1, -11.958260743))
            Line((-1, -11.958260743), (-1, -9))
            ThreePointArc((-1, -9), (-4.086933884, -4.086933884), (-9, -1))
            Line((-9, -1), (-11.958260743, -1))
        make_face()
    extrude(amount=-CORTAR_EXTRUIR3_DEPTH, mode=Mode.SUBTRACT)

    # Redondeo1
    redondeo1_edges = [part.edges().sort_by_distance(p)[0] for p in [
        (0, 0, -5.25),
    ]]
    fillet(redondeo1_edges, radius=REDONDEO1_R)

    # Croquis8 → Cortar-Revolución1 (revolve, cut)
    with BuildSketch(Plane.XY):
        with BuildLine():
            Line((50, 0), (62.972700569, 0))
            ThreePointArc((62.972700569, 0), (56.963621034, 3.875725549), (50, 5.5))
            Line((50, 5.5), (50, 0))
        make_face()
    revolve(axis=Axis((50, 0, 0), (1, 0, 0)), mode=Mode.SUBTRACT)


solid = part.part
